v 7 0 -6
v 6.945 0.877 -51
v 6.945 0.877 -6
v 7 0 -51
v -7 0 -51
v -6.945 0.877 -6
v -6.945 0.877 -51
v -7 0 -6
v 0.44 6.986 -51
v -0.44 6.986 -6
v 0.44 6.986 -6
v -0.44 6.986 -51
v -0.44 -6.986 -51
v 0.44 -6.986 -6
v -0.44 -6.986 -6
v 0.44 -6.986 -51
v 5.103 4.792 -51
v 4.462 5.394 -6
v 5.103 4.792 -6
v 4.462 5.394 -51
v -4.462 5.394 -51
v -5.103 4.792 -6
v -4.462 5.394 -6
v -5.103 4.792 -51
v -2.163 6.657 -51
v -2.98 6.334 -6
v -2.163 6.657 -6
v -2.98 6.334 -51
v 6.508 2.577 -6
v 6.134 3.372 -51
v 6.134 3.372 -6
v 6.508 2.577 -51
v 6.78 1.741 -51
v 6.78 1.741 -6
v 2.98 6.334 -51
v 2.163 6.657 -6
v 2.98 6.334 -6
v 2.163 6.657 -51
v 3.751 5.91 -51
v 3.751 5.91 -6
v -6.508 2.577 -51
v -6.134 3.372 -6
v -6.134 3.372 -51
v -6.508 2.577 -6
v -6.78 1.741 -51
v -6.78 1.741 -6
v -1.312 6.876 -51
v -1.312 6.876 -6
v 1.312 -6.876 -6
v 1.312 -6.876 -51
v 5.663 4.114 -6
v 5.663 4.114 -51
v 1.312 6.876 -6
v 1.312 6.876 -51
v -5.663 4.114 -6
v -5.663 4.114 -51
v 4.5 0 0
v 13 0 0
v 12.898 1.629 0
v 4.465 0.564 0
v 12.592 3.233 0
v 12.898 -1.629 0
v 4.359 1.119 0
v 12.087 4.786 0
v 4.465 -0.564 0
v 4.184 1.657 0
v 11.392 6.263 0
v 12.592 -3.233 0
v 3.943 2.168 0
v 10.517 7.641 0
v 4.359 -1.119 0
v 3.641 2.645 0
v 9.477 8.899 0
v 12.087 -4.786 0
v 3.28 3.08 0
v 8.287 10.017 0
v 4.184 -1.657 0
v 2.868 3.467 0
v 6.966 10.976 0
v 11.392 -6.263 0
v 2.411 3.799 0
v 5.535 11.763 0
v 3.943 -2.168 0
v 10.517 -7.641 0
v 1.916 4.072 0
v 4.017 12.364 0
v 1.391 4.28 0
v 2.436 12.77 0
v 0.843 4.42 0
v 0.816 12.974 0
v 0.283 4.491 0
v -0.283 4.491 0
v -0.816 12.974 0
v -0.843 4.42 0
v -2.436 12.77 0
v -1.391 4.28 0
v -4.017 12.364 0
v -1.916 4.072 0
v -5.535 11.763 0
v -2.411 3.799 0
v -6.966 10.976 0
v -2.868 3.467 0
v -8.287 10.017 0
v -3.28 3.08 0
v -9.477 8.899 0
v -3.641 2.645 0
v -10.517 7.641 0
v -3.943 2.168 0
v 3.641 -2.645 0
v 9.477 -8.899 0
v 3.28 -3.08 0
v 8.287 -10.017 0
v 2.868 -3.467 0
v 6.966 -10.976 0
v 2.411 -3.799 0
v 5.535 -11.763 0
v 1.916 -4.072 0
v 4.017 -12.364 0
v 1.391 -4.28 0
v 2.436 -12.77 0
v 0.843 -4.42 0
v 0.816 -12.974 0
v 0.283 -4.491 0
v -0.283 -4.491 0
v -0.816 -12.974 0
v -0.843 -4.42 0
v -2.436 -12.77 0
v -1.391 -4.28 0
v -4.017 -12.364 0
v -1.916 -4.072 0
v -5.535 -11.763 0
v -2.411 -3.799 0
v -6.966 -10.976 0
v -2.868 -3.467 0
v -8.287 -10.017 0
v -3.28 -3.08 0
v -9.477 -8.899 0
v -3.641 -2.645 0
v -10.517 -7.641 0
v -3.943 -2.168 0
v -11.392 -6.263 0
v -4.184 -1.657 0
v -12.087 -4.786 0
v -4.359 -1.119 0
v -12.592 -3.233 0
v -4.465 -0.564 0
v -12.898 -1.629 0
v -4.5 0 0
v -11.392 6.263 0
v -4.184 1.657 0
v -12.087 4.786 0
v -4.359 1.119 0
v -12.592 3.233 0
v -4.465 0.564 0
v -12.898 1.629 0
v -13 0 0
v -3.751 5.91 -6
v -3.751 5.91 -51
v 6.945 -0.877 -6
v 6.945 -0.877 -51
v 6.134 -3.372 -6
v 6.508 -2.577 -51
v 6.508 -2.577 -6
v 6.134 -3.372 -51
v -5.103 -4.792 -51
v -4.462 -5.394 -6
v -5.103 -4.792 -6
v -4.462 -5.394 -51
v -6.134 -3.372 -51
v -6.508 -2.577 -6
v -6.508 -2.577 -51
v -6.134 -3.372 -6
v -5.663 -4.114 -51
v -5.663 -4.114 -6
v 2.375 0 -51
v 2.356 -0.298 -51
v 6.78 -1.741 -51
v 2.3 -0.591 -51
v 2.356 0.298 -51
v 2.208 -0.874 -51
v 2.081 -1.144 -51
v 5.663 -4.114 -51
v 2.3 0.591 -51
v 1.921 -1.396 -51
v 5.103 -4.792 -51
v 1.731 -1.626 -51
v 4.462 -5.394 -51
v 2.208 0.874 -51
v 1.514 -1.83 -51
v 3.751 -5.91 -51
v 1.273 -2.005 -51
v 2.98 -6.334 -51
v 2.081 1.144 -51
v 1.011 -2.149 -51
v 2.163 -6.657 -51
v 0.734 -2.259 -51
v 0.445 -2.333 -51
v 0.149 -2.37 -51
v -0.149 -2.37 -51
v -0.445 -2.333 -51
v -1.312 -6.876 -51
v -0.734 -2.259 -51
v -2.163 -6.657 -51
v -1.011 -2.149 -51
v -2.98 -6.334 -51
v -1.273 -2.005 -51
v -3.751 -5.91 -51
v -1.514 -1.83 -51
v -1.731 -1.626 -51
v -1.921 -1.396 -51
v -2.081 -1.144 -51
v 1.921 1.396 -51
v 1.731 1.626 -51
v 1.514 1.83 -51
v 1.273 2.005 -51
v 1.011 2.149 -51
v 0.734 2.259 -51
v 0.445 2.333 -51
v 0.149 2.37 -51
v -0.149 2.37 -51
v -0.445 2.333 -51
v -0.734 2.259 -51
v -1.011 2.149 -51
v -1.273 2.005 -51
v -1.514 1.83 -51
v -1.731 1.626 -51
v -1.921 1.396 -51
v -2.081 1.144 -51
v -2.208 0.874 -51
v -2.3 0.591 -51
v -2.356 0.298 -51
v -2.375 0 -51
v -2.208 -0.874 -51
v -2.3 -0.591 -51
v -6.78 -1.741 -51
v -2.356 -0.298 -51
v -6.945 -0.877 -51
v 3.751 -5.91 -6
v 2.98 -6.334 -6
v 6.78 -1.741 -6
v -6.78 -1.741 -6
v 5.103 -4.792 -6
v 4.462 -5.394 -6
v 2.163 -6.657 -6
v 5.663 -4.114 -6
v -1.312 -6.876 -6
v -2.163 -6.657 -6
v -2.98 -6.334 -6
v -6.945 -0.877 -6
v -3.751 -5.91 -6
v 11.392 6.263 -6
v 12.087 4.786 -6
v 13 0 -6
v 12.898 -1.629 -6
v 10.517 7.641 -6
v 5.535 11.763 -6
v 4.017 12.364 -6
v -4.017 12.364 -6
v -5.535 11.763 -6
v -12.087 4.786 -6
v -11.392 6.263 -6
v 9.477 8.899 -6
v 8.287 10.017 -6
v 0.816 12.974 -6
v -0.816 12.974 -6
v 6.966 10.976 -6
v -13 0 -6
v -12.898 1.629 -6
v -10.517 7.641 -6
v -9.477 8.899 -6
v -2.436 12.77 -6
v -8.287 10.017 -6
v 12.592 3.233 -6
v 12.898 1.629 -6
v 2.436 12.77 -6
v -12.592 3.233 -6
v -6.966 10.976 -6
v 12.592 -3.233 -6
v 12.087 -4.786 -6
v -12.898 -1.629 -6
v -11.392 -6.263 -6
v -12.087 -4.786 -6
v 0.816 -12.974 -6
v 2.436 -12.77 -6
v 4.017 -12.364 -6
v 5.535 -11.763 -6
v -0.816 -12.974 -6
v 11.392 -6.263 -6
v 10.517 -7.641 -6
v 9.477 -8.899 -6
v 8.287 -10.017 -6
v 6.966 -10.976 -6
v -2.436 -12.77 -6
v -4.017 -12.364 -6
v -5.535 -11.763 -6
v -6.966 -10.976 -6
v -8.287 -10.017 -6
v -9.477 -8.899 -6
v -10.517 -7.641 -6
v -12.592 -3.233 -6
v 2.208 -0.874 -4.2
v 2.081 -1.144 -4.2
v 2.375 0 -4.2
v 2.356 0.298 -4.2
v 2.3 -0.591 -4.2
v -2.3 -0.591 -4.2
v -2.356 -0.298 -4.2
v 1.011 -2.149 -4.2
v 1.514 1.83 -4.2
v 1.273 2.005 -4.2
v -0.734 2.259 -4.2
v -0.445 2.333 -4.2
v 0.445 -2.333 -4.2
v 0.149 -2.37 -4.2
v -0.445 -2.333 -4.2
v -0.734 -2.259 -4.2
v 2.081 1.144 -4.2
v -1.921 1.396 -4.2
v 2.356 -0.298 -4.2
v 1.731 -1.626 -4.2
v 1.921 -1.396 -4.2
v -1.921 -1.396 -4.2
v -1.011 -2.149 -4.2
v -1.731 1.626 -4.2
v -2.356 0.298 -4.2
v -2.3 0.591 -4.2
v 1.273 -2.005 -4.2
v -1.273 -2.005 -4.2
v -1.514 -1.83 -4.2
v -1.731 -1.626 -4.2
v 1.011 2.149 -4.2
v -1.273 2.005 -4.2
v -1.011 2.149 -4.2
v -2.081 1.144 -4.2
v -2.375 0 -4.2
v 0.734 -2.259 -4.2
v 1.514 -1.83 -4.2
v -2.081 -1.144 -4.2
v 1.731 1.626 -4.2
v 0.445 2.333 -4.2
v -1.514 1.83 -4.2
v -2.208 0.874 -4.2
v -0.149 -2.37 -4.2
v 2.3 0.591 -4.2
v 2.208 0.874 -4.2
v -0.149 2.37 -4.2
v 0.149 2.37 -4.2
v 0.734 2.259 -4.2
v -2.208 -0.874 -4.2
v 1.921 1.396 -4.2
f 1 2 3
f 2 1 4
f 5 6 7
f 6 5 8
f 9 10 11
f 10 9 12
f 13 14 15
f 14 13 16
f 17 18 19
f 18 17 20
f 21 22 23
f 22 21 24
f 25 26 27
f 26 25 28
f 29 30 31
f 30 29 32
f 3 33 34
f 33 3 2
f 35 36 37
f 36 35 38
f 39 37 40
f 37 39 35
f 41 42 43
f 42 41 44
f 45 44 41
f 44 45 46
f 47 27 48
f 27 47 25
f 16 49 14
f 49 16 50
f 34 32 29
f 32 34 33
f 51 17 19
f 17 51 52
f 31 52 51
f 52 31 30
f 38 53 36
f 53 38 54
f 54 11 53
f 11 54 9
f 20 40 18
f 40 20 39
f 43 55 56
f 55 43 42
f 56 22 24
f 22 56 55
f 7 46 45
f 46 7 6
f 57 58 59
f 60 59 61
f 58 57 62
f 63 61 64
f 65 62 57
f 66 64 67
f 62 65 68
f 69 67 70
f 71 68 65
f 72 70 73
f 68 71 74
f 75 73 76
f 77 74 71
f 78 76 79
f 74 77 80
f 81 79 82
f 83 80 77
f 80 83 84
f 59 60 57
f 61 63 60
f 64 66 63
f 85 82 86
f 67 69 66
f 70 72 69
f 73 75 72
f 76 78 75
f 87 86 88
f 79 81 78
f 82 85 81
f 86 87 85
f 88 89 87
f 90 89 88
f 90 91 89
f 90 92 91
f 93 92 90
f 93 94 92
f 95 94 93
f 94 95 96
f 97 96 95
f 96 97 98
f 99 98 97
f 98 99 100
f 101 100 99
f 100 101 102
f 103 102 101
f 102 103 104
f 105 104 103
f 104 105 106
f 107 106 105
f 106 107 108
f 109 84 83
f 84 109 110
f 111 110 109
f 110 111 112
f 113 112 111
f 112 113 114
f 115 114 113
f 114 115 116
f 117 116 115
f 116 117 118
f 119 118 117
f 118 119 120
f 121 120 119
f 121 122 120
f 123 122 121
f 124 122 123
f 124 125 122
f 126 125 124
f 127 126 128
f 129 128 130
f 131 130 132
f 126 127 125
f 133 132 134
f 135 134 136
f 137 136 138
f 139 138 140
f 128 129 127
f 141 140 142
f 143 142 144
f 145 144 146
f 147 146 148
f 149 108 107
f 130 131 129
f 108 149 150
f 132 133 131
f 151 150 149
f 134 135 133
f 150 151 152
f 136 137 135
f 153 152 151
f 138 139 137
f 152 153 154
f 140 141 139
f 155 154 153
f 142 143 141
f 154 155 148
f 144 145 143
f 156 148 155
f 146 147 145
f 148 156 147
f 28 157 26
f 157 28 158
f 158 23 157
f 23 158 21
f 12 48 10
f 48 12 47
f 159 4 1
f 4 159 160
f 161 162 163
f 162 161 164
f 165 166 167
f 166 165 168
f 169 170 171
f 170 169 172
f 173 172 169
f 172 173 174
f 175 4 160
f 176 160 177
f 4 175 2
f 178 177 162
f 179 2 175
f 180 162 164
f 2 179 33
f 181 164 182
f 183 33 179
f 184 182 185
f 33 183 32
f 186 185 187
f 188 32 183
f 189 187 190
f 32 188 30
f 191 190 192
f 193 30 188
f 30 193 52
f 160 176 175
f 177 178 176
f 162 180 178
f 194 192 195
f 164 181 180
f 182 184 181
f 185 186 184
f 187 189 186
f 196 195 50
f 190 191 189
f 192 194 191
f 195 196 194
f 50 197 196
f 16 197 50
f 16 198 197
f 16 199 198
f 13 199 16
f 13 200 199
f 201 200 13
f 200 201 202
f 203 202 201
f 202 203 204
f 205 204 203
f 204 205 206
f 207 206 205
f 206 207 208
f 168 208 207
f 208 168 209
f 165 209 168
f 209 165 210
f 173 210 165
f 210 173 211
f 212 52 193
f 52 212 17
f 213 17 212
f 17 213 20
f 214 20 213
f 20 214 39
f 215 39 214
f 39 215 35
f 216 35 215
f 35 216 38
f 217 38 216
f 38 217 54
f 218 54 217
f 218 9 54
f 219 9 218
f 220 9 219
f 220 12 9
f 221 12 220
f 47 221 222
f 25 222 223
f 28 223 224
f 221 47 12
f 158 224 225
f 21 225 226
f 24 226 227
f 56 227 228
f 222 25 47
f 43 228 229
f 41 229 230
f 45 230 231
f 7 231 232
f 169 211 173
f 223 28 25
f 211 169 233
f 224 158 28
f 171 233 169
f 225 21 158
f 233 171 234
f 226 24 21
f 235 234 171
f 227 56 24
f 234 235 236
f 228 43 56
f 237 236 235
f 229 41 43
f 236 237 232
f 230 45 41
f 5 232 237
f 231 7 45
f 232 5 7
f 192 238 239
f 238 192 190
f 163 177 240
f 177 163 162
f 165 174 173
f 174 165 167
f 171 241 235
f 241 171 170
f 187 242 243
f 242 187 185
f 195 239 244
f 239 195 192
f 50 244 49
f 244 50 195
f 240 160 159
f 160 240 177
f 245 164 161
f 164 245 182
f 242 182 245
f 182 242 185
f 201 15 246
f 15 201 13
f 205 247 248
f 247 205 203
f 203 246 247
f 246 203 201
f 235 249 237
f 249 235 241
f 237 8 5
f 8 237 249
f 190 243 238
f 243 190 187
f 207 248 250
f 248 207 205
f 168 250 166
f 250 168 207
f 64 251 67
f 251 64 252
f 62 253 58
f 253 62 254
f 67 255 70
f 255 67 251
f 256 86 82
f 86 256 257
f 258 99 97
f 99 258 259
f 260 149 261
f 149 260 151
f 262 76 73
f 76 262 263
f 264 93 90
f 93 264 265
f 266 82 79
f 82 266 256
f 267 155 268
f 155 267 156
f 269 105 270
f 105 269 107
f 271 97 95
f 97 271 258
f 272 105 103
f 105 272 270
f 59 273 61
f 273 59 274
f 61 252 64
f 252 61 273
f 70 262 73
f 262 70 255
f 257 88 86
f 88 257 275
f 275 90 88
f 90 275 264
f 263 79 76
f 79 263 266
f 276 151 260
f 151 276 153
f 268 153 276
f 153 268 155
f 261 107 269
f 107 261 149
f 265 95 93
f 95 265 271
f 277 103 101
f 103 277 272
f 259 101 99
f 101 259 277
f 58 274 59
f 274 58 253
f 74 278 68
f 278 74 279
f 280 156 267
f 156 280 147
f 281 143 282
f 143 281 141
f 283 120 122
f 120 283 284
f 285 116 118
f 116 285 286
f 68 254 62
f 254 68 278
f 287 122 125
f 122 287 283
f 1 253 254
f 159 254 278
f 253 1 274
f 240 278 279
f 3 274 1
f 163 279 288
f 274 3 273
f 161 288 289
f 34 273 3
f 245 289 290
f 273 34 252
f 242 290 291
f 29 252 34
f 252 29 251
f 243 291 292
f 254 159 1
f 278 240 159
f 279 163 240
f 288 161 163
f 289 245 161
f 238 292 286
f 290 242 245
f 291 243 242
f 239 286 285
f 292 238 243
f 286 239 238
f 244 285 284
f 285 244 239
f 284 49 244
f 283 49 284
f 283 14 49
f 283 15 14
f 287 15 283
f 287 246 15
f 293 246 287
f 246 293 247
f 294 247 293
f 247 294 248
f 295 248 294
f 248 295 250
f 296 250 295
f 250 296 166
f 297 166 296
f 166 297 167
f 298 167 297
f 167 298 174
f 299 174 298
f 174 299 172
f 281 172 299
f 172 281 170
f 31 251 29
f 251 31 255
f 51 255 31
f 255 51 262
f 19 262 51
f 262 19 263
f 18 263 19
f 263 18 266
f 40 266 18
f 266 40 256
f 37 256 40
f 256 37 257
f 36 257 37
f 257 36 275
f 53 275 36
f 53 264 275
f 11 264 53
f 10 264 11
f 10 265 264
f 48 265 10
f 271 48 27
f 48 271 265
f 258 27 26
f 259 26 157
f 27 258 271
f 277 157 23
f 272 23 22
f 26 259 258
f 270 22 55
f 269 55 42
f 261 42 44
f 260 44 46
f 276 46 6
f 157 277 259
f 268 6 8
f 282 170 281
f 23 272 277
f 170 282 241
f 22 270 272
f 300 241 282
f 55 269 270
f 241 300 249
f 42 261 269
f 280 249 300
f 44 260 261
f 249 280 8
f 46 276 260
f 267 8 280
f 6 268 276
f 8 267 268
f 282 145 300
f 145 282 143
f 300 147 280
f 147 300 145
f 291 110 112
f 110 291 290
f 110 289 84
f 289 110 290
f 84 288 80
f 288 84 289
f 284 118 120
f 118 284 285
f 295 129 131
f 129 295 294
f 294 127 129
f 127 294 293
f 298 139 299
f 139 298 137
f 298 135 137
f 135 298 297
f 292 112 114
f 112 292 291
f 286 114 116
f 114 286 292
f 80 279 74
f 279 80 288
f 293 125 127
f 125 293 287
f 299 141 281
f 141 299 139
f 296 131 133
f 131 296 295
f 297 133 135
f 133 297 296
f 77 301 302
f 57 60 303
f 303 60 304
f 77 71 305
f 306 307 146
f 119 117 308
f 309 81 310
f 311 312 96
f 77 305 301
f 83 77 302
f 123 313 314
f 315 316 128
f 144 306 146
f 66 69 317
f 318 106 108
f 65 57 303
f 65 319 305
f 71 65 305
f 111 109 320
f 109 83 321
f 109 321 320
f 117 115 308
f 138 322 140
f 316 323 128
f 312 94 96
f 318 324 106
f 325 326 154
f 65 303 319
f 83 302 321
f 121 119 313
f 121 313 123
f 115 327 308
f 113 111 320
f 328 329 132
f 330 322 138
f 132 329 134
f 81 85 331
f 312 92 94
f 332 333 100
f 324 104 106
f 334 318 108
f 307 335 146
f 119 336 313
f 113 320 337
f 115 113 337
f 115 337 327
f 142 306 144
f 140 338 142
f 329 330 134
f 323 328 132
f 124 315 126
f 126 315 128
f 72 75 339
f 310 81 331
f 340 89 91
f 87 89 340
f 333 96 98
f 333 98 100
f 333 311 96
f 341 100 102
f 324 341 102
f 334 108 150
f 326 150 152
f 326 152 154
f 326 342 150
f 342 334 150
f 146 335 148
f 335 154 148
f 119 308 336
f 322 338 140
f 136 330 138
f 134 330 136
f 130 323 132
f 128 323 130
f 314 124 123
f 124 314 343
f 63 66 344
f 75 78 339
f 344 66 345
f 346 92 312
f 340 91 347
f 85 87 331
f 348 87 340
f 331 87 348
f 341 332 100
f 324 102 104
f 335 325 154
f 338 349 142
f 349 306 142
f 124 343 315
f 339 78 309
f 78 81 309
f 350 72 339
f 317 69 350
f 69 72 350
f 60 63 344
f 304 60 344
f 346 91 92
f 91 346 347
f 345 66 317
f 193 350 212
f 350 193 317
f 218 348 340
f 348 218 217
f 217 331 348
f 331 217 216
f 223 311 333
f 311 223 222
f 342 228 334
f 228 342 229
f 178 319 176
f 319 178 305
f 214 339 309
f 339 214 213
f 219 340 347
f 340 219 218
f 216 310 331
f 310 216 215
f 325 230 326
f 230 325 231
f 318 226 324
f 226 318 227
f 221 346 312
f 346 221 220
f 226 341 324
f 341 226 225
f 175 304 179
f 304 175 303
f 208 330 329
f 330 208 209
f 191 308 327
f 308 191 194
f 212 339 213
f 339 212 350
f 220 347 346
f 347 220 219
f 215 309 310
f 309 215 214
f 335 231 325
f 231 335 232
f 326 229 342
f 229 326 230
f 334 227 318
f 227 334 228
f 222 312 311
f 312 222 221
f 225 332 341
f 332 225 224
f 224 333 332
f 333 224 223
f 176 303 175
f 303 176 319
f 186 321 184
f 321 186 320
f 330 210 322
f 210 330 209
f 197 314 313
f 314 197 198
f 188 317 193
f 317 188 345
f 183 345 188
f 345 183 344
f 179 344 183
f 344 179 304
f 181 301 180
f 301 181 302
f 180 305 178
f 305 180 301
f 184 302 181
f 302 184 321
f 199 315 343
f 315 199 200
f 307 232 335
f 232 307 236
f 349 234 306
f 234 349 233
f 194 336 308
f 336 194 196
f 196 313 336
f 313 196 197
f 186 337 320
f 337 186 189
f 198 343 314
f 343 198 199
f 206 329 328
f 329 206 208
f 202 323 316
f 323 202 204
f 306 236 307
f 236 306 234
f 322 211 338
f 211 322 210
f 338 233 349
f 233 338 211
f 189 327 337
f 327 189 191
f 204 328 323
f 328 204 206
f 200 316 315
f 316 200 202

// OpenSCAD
$fn = 50;


difference() {
	union() {
		translate(v = [0, 0, -51.0000000000]) {
			cylinder(h = 51, r = 7.0000000000);
		}
		translate(v = [0, 0, -6.0000000000]) {
			cylinder(h = 6, r = 13.0000000000);
		}
	}
	union() {
		translate(v = [0, 0, 0]) {
			rotate(a = [0, 0, 0]) {
				difference() {
					union() {
						#translate(v = [0, 0, -51.0000000000]) {
							cylinder(h = 51, r = 2.2500000000);
						}
						#translate(v = [0, 0, -4.2000000000]) {
							cylinder(h = 4.2000000000, r = 7.0000000000, r1 = 2.3750000000, r2 = 4.5000000000);
						}
						#translate(v = [0, 0, -51.0000000000]) {
							cylinder(h = 51, r = 2.3750000000);
						}
						#translate(v = [0, 0, -51.0000000000]) {
							cylinder(h = 51, r = 2.2500000000);
						}
					}
					union();
				}
			}
		}
	}
}
